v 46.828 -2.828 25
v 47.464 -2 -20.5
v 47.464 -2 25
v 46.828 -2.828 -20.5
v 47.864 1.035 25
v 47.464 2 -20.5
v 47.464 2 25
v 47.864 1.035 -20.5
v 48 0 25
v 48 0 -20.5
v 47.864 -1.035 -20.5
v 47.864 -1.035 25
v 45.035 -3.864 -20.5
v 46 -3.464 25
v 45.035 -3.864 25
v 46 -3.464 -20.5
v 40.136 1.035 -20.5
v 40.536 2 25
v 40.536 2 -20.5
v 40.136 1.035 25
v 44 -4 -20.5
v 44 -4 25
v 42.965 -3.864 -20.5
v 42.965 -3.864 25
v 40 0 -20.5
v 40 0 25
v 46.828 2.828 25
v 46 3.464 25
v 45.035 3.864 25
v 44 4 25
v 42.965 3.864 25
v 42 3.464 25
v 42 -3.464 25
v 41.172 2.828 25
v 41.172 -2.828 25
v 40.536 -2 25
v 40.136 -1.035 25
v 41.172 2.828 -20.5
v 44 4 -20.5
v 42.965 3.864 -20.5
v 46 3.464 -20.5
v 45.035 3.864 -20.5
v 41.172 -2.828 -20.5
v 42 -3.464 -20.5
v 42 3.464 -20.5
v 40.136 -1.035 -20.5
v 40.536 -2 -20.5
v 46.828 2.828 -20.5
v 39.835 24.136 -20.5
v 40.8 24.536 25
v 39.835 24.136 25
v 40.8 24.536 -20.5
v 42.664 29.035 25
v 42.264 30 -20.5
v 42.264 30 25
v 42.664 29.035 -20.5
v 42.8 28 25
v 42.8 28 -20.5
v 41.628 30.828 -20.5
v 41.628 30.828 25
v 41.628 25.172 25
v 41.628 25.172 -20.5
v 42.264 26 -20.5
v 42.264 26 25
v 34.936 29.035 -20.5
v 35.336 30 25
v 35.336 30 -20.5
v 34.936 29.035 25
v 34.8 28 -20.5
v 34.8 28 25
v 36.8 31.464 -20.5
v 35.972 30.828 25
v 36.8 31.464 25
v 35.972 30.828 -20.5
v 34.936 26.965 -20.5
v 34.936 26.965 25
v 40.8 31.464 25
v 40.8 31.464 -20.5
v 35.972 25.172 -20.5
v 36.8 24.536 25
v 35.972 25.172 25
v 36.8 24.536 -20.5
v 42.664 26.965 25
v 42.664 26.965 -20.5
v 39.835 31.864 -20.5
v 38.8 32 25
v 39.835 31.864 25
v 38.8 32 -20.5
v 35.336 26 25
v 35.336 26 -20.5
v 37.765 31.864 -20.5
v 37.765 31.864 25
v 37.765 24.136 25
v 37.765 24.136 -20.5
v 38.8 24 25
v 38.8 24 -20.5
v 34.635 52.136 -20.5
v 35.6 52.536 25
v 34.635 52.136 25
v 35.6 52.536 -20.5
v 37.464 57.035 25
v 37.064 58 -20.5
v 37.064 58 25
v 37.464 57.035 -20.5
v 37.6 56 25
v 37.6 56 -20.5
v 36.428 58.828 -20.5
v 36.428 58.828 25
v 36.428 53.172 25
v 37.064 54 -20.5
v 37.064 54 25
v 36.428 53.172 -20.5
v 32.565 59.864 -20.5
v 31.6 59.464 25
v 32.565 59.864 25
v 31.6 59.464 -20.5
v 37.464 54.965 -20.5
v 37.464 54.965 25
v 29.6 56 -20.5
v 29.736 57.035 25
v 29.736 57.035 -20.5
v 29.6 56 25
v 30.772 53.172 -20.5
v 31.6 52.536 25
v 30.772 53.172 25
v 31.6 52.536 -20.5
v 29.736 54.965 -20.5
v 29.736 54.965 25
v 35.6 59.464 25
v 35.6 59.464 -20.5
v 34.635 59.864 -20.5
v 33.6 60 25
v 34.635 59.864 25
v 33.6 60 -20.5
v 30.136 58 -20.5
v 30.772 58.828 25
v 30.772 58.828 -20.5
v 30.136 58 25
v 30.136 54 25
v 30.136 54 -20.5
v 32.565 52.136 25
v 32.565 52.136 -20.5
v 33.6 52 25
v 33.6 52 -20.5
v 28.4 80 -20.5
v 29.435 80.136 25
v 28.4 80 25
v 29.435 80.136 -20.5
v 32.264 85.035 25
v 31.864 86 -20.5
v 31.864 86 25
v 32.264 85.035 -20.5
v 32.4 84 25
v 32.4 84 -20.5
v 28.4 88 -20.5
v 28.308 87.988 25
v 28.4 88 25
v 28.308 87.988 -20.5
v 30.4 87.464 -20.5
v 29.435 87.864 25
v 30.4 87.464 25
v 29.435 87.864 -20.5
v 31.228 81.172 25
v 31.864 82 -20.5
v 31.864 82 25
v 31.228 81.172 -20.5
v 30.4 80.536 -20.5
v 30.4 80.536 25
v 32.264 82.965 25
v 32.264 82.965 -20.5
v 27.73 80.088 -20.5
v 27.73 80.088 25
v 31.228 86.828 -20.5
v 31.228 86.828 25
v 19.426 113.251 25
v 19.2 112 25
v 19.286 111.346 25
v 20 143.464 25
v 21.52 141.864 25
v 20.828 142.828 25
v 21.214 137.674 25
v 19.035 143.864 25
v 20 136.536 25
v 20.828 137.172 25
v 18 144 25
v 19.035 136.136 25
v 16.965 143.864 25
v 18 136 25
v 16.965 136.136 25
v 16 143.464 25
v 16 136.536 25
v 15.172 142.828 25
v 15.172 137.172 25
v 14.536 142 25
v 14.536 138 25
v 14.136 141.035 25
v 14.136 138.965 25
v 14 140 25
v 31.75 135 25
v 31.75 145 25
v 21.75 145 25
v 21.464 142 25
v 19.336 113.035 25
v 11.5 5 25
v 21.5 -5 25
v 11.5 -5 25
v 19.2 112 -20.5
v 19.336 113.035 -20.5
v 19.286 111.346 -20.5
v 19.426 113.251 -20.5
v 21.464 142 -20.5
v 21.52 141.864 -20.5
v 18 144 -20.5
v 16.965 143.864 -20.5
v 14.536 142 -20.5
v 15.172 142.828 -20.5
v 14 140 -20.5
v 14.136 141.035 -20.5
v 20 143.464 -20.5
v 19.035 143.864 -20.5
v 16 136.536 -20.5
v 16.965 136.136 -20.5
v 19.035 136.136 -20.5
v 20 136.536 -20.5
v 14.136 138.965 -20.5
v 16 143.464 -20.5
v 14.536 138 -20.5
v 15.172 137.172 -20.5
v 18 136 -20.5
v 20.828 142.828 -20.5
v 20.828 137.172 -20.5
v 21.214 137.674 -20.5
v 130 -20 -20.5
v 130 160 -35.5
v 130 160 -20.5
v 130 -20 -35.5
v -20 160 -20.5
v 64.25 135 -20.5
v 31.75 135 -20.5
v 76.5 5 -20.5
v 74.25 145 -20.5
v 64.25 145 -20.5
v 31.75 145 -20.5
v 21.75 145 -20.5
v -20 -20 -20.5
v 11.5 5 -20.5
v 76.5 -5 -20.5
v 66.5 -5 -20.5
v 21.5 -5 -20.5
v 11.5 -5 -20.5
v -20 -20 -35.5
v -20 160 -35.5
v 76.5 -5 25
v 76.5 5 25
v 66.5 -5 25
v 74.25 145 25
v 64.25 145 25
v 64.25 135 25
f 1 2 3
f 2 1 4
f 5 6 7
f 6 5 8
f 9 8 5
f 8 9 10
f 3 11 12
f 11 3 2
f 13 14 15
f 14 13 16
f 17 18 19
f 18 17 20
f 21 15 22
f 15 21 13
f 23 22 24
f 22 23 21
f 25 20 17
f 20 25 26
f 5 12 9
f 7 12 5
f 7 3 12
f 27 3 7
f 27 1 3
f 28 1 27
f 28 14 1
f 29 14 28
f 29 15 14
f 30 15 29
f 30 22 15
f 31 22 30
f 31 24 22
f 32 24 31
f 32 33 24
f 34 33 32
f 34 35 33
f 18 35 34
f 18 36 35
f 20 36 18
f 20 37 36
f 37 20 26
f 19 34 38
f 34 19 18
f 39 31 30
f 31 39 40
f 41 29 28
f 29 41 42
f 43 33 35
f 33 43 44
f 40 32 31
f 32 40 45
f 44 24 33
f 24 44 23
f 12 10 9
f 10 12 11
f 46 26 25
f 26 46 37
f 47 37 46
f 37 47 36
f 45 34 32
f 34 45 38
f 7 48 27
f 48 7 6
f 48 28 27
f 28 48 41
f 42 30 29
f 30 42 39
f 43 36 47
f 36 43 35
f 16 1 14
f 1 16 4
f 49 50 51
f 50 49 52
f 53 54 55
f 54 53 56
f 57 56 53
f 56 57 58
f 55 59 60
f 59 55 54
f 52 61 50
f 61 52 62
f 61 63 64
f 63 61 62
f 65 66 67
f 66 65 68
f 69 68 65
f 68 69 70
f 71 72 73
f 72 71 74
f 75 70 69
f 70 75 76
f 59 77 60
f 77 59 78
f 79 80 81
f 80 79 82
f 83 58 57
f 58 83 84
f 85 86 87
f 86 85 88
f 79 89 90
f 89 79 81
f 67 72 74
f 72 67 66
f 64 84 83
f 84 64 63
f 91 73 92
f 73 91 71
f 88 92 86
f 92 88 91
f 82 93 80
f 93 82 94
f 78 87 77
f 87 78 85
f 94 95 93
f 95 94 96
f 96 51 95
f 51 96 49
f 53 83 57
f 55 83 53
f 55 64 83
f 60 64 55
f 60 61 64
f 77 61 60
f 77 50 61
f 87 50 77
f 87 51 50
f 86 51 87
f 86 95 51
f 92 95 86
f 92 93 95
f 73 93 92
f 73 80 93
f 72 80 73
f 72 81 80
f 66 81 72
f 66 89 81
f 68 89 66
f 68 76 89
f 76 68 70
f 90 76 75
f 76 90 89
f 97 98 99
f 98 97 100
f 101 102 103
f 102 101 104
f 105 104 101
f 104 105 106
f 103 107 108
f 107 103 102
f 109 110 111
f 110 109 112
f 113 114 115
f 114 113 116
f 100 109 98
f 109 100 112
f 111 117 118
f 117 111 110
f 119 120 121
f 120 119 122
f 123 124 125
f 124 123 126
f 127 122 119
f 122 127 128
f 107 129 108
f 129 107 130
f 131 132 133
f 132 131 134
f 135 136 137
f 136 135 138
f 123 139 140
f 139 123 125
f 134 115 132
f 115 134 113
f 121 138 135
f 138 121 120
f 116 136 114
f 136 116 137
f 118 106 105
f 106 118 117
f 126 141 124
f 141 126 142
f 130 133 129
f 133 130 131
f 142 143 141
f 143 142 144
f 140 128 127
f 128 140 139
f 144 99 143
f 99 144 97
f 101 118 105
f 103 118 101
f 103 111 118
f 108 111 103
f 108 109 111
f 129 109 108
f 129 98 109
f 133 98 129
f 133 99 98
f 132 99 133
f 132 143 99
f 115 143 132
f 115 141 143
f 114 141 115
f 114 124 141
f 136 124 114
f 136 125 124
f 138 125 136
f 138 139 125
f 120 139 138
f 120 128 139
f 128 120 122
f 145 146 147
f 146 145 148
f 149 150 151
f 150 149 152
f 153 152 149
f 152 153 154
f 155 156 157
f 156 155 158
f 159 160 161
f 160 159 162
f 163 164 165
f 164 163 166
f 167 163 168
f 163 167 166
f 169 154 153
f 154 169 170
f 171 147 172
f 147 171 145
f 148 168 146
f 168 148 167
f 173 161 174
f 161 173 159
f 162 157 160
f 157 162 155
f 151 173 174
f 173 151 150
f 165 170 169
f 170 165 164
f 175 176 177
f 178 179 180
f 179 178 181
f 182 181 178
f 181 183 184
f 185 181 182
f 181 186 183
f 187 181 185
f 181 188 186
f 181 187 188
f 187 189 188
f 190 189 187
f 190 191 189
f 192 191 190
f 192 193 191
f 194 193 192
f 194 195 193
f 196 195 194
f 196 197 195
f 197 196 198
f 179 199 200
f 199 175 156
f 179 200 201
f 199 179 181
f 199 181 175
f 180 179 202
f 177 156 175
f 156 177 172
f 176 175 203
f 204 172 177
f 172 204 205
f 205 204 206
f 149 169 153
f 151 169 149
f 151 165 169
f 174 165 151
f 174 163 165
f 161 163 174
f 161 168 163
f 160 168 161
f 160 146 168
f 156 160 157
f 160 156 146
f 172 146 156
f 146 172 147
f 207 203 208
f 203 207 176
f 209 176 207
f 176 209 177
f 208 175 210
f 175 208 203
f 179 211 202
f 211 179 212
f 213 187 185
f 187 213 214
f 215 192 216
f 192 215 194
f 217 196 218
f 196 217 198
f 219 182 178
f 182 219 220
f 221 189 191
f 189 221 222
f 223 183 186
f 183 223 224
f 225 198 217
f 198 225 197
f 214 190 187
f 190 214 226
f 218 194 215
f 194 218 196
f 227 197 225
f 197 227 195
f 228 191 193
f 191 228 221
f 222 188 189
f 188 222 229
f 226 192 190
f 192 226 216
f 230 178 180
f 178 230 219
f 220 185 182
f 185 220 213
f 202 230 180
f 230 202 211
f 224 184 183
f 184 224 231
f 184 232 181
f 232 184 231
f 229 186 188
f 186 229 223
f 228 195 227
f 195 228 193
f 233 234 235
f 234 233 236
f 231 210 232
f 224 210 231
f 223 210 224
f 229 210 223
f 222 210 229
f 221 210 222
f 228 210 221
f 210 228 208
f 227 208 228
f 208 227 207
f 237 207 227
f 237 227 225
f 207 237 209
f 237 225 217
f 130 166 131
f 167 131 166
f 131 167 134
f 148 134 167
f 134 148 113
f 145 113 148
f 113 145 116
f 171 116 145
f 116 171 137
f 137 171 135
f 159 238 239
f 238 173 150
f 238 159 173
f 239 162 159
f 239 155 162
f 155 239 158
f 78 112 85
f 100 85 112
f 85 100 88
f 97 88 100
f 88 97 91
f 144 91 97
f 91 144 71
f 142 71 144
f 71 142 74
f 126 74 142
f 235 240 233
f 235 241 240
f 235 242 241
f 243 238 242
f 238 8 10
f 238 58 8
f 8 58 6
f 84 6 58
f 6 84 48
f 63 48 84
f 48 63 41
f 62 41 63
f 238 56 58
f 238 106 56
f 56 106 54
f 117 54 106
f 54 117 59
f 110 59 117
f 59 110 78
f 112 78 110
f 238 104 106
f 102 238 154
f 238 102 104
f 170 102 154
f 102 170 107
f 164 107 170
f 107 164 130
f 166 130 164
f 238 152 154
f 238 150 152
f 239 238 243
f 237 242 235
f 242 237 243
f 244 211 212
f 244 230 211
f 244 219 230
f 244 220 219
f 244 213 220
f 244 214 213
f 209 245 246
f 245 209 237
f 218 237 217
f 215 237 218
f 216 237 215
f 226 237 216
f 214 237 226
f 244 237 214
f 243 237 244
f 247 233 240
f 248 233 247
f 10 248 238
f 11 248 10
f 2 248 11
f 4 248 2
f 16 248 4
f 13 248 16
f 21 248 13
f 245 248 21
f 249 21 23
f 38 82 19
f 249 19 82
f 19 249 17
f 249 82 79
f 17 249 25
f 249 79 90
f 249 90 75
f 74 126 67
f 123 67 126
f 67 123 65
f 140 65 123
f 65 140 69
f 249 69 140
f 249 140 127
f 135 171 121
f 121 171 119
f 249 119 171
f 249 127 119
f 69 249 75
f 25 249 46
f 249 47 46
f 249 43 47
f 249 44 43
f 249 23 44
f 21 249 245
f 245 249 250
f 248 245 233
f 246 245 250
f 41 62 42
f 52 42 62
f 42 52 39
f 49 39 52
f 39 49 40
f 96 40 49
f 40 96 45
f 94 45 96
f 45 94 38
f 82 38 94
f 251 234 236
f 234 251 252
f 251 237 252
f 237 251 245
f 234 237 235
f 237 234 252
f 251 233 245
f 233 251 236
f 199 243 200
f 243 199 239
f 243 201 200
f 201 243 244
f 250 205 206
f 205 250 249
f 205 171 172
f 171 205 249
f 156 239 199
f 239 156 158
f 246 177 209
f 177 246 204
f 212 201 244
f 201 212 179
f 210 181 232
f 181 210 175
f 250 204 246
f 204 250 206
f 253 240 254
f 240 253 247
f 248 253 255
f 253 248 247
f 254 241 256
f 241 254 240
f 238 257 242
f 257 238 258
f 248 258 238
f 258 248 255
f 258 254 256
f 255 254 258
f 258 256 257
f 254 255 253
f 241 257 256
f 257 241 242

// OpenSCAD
// ISM-FJ-TOOL-020 — Wing box assembly jig (right wing, study mm)
// Single manifold solid: cradles/posts rooted into base plate.

root_chord = 110;
tip_chord = 45;
semi_span = 140;
spar_front_pct = 0.15;
spar_rear_pct = 0.65;
beam_t = 10;
post_h = 50;
base_t = 12;
overlap = 3;

module spar_cradle(x0, x1, y0, y1) {
    hull() {
        translate([x0, y0, 0]) cube([beam_t, beam_t, post_h], center = true);
        translate([x1, y1, 0]) cube([beam_t, beam_t, post_h], center = true);
    }
}

module rib_post(y, chord) {
    translate([chord * 0.4, y, 0])
        cylinder(h = post_h, d = 8, center = true, $fn = 24);
}

module wing_box_jig() {
    union() {
        translate([root_chord / 2, semi_span / 2, -post_h / 2 - base_t / 2 + overlap])
            cube([root_chord + 40, semi_span + 40, base_t + overlap], center = true);
        spar_cradle(root_chord * spar_front_pct, tip_chord * spar_front_pct + 20, 0, semi_span);
        spar_cradle(root_chord * spar_rear_pct, tip_chord * spar_rear_pct + 40, 0, semi_span);
        for (i = [0:5]) {
            y = i * semi_span / 5;
            c = root_chord + (tip_chord - root_chord) * (i / 5);
            rib_post(y, c);
        }
    }
}

wing_box_jig();
